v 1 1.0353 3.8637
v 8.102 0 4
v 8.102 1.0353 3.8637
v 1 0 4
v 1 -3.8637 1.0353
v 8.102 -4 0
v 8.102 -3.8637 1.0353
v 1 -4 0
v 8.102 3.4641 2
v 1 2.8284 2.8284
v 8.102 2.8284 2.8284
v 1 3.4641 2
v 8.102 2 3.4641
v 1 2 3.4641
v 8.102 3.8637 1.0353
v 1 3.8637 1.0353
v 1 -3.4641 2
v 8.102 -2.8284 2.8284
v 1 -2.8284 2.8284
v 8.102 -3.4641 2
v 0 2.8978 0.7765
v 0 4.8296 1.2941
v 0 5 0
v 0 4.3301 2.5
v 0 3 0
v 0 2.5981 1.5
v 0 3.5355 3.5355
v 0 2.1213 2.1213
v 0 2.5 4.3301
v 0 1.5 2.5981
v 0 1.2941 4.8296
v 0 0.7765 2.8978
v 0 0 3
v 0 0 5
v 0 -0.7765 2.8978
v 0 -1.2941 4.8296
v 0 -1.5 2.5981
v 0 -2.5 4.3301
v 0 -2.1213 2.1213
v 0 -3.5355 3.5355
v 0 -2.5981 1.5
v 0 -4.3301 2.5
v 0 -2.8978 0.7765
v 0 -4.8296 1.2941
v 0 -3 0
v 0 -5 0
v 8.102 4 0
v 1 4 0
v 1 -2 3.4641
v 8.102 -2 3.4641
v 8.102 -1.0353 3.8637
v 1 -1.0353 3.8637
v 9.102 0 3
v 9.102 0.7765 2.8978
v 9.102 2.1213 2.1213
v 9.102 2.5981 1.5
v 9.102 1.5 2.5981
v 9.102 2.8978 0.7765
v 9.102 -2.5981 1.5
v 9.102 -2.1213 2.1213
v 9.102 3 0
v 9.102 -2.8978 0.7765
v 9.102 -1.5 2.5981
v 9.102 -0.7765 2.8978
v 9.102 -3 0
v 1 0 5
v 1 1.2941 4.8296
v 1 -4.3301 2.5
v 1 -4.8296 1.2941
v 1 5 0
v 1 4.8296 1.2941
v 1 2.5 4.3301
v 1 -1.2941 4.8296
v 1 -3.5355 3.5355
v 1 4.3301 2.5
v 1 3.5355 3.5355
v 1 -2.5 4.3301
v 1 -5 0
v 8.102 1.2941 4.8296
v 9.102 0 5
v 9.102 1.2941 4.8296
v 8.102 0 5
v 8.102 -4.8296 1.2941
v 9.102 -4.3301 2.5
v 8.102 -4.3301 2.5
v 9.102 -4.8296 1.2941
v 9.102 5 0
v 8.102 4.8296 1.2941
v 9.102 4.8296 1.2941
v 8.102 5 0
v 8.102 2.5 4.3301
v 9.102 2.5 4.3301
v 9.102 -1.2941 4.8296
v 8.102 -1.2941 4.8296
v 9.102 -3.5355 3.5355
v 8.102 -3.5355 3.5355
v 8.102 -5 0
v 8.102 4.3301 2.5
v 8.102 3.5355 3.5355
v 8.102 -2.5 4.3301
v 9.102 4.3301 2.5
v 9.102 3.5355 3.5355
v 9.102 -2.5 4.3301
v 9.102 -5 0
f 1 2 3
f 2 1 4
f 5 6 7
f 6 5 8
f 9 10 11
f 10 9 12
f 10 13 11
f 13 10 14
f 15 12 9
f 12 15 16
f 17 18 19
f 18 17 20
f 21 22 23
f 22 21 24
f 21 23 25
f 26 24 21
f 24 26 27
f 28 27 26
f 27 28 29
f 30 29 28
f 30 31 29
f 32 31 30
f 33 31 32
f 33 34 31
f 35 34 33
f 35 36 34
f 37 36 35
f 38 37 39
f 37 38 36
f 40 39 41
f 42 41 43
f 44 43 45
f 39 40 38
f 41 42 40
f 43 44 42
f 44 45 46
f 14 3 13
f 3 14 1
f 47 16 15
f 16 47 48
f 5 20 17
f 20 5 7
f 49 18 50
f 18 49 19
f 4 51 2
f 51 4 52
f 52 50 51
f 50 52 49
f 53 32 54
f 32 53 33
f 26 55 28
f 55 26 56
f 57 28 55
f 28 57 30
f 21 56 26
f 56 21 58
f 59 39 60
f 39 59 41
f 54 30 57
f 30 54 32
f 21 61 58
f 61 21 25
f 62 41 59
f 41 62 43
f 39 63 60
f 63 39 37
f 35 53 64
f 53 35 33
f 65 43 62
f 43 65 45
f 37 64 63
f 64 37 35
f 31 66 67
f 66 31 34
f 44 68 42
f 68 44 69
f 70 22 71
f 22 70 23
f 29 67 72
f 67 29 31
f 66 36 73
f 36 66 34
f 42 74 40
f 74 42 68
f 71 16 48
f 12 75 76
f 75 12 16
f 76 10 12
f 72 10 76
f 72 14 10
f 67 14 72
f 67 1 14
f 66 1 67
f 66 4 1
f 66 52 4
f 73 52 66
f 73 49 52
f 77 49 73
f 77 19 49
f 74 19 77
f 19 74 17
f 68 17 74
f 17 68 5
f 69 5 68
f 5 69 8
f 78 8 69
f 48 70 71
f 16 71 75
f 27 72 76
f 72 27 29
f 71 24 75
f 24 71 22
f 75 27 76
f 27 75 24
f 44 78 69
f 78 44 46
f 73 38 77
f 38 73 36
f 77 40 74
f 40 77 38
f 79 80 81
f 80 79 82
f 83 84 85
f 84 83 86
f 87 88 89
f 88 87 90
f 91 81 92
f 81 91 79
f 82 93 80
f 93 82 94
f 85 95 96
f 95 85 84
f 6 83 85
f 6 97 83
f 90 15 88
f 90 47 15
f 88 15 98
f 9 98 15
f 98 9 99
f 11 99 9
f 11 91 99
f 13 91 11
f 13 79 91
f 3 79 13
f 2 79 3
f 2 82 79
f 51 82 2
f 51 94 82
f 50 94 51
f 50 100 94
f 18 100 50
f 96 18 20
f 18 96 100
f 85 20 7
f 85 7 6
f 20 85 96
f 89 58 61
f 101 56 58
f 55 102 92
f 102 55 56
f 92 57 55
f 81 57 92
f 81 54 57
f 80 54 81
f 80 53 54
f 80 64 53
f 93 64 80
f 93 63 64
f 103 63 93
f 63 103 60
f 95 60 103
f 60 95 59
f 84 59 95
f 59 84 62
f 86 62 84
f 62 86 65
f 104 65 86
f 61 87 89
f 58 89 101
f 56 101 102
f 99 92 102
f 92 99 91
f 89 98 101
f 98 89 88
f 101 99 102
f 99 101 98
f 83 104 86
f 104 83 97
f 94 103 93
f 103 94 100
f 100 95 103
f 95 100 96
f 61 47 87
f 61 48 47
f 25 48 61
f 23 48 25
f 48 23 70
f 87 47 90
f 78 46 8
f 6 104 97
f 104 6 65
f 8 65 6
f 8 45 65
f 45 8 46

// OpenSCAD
// file: ../build_environments.scad
// build_environments.scad: modules to build level sections
//

module pool(diameter=10.0, wall_height=2.0, step_width=3.0, connections=[])
{
    difference() {
        union() {
        difference() {
            cylinder(h=0.5,r1=diameter+step_width,r2=diameter+step_width,$fn=48);
            translate([0,0,-0.1])
                cylinder(h=0.7,r1=diameter,r2=diameter,$fn=48);
        }
        difference() {
            cylinder(h=wall_height,r1=diameter+step_width+1.0,r2=diameter+step_width+1.0,$fn=48);
            translate([0,0,-0.1])
                cylinder(h=wall_height+0.2,r1=diameter+step_width,r2=diameter+step_width,$fn=48);
        }
        }
    
        for (c = connections)
        {
            rotate([0,90,0]) {
                angle = atan2(c[1],c[0]);
                rotate([-angle,0,0]) {
                    cylinder(h=diameter+5.0,r1=c[2],r2=c[2],$fn=48);
                }
            }
        }
    }
}

module straight(length=10.0, width=2.0, dy1=0.0, dy2=0.0, dz=0.0)
{
    dims = [0, 0, 0, 0, 0, (dz/length)];
    matrix = [
        [ 1, dims[0], dims[1], 0 ],
        [ dims[2], 1, dims[4], 0 ],
        [ dims[5], dims[3], 1, 0 ],
        [ 0, 0, 0, 1 ]
    ];
    multmatrix(matrix)
    difference() {
        translate([dy1,0,0])
        union() {
            rotate([0,90,0]) {
                difference() {
                    cylinder(h=(length-dy1-dy2),r1=width+1.0,r2=width+1.0,$fn=24);
                    translate([0,0,-0.1])
                        cylinder(h=(length-dy1-dy2+0.2),r1=width,r2=width,$fn=24);
                }
                difference() {
                    cylinder(h=1.0,r1=width+2.0,r2=width+2.0,$fn=24);
                    translate([0,0,-0.1])
                        cylinder(h=1.2,r1=width,r2=width,$fn=24);
                }
                translate([0,0,(length-dy1-dy2)-1.0]) {
                    difference() {
                        cylinder(h=1.0,r1=width+2.0,r2=width+2.0,$fn=24);
                        translate([0,0,-0.1])
                            cylinder(h=1.2,r1=width,r2=width,$fn=24);
                    }
                }
            }
        }
        translate([0,0,-(2*width+4.0)/2])
            cube([3*length,3*length,2*width+4.0],center=true);
    }
}

module curve(p0=[0,0], center=[0,0], dir=1, angle=0.0, width=2.0)
{
    radius = sqrt((p0[0]-center[0])*(p0[0]-center[0]) + (p0[1]-center[1])*(p0[1]-center[1]));
    if (dir == 0) {
        difference() {
            rotate([0,0,-90])
            difference() {
                rotate_extrude(angle = angle, convexity = 10, $fn=32)
                    translate([radius, 0, 0])
                        circle(r = width+1.0,$fn=24);
                rotate([0,0,-1.0])
                    rotate_extrude(angle = angle+2.0, convexity = 10, $fn=32)
                        translate([radius, 0, 0])
                            circle(r = width,$fn=24);
            }
            translate([0,0,-(2*width+4.0)/2])
                cube([5*radius,5*radius,2*width+4.0],center=true);
        }
    }
    else {
        difference() {
            rotate([0,0,90])
            difference() {
                rotate_extrude(angle = -angle, convexity = 10, $fn=32)
                    translate([radius, 0, 0])
                        circle(r = width+1.0,$fn=24);
                rotate([0,0,1.0])
                    rotate_extrude(angle = -angle-2.0, convexity = 10, $fn=32)
                        translate([radius, 0, 0])
                            circle(r = width,$fn=24);
            }
            translate([0,0,-(2*width+4.0)/2])
                cube([5*radius,5*radius,2*width+4.0],center=true);
        }
    }

}

// test pool
//pool(diameter=12.0000, wall_height=3.0000, step_width=3.0000, connections=[[0.0000,-26.0000,2.0000], [23.6074,0.0000,2.0000]]);

// test straight, slope
//straight(length=26.0000, width=2.0000, dy1=11.8322, dy2=6.7082, dz=0.0000);
//straight(length=29.1549, width=12.0000, dy1=0.0000, dy2=0.0000, dz=-15.0000);

// test curve
//curve(p0=[23.6074, 0.0000], center=[23.6074, 5.0000], dir=0, angle=60.1011, width=2.0000);
//curve(p0=[33.6426, 12.4219], center=[37.9771, 9.9295], dir=1, angle=120.4627, width=2.0000);
// main file
use <../build_environments.scad>;
straight(length=9.1020, width=3.0000, dy1=0.0000, dy2=0.0000, dz=0.0000);
